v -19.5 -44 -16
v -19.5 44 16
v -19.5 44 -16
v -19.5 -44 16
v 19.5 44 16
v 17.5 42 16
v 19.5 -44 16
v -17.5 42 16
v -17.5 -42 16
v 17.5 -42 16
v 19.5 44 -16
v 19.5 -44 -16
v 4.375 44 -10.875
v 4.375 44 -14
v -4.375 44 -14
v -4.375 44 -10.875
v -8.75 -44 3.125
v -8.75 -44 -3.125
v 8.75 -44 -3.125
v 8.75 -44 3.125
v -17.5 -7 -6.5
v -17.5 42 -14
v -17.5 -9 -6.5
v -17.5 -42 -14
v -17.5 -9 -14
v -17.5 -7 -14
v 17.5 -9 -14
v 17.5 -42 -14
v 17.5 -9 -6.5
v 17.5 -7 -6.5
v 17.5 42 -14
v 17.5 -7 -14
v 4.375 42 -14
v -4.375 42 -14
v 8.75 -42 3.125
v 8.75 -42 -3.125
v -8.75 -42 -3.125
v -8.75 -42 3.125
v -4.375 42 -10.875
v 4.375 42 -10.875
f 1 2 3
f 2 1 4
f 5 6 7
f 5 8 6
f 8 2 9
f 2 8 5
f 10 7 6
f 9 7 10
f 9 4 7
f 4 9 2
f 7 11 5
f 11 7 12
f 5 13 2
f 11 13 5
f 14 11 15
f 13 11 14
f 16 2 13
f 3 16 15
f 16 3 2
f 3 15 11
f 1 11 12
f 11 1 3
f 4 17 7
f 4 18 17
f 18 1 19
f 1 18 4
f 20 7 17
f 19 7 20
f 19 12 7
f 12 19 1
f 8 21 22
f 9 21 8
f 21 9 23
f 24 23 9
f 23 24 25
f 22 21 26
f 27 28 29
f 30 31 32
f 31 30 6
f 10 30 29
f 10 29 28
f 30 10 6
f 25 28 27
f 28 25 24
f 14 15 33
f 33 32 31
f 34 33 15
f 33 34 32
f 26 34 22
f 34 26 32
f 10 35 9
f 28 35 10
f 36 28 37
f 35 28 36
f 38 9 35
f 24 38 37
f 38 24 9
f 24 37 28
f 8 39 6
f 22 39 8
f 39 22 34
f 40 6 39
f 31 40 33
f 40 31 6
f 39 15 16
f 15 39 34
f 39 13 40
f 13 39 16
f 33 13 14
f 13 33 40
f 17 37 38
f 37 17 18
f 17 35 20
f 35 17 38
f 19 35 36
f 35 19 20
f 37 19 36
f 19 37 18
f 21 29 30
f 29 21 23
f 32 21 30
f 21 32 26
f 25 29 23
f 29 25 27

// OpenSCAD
esp8266Height = 48;
uln2003Height = 34;
wallThickness = 2;

insideWidth = 35;
insideHeight = 82 + /* Divider */ wallThickness;
insideDepth = 30;


caseWidth = insideWidth + (wallThickness * 2);
caseHeight = insideHeight + (wallThickness * 2);
caseDepth = insideDepth + wallThickness;



difference() {
    cube([caseWidth, caseHeight, caseDepth], center = true);
    translate([0, 0, wallThickness / 2]) {
        cube([insideWidth, insideHeight, insideDepth], center = true);
    };
    
    // Port #1 (USB)
    portOneWidth = insideWidth / 4;
    portOneDepth = 3.125;
    
    translate([0, caseHeight / 2, -(caseDepth / 2) + (portOneDepth / 2) + wallThickness]) {
        cube([portOneWidth, insideHeight / 2, portOneDepth], center = true);
    }
    
    // Port #2 (JST)
    portTwoWidth = insideWidth / 2;
    portTwoDepth = 6.25;
    
    translate([0, -(insideHeight / 2), 0]) {
        cube([portTwoWidth, insideHeight / 2, portTwoDepth], center = true);
    }
}

// Divider
dividerDepth = insideDepth / 4;

translate([0, -((insideHeight / 2) - uln2003Height), -(caseDepth / 2) + (dividerDepth / 2) + wallThickness]) {
    cube([insideWidth, wallThickness, dividerDepth], center = true);
}
